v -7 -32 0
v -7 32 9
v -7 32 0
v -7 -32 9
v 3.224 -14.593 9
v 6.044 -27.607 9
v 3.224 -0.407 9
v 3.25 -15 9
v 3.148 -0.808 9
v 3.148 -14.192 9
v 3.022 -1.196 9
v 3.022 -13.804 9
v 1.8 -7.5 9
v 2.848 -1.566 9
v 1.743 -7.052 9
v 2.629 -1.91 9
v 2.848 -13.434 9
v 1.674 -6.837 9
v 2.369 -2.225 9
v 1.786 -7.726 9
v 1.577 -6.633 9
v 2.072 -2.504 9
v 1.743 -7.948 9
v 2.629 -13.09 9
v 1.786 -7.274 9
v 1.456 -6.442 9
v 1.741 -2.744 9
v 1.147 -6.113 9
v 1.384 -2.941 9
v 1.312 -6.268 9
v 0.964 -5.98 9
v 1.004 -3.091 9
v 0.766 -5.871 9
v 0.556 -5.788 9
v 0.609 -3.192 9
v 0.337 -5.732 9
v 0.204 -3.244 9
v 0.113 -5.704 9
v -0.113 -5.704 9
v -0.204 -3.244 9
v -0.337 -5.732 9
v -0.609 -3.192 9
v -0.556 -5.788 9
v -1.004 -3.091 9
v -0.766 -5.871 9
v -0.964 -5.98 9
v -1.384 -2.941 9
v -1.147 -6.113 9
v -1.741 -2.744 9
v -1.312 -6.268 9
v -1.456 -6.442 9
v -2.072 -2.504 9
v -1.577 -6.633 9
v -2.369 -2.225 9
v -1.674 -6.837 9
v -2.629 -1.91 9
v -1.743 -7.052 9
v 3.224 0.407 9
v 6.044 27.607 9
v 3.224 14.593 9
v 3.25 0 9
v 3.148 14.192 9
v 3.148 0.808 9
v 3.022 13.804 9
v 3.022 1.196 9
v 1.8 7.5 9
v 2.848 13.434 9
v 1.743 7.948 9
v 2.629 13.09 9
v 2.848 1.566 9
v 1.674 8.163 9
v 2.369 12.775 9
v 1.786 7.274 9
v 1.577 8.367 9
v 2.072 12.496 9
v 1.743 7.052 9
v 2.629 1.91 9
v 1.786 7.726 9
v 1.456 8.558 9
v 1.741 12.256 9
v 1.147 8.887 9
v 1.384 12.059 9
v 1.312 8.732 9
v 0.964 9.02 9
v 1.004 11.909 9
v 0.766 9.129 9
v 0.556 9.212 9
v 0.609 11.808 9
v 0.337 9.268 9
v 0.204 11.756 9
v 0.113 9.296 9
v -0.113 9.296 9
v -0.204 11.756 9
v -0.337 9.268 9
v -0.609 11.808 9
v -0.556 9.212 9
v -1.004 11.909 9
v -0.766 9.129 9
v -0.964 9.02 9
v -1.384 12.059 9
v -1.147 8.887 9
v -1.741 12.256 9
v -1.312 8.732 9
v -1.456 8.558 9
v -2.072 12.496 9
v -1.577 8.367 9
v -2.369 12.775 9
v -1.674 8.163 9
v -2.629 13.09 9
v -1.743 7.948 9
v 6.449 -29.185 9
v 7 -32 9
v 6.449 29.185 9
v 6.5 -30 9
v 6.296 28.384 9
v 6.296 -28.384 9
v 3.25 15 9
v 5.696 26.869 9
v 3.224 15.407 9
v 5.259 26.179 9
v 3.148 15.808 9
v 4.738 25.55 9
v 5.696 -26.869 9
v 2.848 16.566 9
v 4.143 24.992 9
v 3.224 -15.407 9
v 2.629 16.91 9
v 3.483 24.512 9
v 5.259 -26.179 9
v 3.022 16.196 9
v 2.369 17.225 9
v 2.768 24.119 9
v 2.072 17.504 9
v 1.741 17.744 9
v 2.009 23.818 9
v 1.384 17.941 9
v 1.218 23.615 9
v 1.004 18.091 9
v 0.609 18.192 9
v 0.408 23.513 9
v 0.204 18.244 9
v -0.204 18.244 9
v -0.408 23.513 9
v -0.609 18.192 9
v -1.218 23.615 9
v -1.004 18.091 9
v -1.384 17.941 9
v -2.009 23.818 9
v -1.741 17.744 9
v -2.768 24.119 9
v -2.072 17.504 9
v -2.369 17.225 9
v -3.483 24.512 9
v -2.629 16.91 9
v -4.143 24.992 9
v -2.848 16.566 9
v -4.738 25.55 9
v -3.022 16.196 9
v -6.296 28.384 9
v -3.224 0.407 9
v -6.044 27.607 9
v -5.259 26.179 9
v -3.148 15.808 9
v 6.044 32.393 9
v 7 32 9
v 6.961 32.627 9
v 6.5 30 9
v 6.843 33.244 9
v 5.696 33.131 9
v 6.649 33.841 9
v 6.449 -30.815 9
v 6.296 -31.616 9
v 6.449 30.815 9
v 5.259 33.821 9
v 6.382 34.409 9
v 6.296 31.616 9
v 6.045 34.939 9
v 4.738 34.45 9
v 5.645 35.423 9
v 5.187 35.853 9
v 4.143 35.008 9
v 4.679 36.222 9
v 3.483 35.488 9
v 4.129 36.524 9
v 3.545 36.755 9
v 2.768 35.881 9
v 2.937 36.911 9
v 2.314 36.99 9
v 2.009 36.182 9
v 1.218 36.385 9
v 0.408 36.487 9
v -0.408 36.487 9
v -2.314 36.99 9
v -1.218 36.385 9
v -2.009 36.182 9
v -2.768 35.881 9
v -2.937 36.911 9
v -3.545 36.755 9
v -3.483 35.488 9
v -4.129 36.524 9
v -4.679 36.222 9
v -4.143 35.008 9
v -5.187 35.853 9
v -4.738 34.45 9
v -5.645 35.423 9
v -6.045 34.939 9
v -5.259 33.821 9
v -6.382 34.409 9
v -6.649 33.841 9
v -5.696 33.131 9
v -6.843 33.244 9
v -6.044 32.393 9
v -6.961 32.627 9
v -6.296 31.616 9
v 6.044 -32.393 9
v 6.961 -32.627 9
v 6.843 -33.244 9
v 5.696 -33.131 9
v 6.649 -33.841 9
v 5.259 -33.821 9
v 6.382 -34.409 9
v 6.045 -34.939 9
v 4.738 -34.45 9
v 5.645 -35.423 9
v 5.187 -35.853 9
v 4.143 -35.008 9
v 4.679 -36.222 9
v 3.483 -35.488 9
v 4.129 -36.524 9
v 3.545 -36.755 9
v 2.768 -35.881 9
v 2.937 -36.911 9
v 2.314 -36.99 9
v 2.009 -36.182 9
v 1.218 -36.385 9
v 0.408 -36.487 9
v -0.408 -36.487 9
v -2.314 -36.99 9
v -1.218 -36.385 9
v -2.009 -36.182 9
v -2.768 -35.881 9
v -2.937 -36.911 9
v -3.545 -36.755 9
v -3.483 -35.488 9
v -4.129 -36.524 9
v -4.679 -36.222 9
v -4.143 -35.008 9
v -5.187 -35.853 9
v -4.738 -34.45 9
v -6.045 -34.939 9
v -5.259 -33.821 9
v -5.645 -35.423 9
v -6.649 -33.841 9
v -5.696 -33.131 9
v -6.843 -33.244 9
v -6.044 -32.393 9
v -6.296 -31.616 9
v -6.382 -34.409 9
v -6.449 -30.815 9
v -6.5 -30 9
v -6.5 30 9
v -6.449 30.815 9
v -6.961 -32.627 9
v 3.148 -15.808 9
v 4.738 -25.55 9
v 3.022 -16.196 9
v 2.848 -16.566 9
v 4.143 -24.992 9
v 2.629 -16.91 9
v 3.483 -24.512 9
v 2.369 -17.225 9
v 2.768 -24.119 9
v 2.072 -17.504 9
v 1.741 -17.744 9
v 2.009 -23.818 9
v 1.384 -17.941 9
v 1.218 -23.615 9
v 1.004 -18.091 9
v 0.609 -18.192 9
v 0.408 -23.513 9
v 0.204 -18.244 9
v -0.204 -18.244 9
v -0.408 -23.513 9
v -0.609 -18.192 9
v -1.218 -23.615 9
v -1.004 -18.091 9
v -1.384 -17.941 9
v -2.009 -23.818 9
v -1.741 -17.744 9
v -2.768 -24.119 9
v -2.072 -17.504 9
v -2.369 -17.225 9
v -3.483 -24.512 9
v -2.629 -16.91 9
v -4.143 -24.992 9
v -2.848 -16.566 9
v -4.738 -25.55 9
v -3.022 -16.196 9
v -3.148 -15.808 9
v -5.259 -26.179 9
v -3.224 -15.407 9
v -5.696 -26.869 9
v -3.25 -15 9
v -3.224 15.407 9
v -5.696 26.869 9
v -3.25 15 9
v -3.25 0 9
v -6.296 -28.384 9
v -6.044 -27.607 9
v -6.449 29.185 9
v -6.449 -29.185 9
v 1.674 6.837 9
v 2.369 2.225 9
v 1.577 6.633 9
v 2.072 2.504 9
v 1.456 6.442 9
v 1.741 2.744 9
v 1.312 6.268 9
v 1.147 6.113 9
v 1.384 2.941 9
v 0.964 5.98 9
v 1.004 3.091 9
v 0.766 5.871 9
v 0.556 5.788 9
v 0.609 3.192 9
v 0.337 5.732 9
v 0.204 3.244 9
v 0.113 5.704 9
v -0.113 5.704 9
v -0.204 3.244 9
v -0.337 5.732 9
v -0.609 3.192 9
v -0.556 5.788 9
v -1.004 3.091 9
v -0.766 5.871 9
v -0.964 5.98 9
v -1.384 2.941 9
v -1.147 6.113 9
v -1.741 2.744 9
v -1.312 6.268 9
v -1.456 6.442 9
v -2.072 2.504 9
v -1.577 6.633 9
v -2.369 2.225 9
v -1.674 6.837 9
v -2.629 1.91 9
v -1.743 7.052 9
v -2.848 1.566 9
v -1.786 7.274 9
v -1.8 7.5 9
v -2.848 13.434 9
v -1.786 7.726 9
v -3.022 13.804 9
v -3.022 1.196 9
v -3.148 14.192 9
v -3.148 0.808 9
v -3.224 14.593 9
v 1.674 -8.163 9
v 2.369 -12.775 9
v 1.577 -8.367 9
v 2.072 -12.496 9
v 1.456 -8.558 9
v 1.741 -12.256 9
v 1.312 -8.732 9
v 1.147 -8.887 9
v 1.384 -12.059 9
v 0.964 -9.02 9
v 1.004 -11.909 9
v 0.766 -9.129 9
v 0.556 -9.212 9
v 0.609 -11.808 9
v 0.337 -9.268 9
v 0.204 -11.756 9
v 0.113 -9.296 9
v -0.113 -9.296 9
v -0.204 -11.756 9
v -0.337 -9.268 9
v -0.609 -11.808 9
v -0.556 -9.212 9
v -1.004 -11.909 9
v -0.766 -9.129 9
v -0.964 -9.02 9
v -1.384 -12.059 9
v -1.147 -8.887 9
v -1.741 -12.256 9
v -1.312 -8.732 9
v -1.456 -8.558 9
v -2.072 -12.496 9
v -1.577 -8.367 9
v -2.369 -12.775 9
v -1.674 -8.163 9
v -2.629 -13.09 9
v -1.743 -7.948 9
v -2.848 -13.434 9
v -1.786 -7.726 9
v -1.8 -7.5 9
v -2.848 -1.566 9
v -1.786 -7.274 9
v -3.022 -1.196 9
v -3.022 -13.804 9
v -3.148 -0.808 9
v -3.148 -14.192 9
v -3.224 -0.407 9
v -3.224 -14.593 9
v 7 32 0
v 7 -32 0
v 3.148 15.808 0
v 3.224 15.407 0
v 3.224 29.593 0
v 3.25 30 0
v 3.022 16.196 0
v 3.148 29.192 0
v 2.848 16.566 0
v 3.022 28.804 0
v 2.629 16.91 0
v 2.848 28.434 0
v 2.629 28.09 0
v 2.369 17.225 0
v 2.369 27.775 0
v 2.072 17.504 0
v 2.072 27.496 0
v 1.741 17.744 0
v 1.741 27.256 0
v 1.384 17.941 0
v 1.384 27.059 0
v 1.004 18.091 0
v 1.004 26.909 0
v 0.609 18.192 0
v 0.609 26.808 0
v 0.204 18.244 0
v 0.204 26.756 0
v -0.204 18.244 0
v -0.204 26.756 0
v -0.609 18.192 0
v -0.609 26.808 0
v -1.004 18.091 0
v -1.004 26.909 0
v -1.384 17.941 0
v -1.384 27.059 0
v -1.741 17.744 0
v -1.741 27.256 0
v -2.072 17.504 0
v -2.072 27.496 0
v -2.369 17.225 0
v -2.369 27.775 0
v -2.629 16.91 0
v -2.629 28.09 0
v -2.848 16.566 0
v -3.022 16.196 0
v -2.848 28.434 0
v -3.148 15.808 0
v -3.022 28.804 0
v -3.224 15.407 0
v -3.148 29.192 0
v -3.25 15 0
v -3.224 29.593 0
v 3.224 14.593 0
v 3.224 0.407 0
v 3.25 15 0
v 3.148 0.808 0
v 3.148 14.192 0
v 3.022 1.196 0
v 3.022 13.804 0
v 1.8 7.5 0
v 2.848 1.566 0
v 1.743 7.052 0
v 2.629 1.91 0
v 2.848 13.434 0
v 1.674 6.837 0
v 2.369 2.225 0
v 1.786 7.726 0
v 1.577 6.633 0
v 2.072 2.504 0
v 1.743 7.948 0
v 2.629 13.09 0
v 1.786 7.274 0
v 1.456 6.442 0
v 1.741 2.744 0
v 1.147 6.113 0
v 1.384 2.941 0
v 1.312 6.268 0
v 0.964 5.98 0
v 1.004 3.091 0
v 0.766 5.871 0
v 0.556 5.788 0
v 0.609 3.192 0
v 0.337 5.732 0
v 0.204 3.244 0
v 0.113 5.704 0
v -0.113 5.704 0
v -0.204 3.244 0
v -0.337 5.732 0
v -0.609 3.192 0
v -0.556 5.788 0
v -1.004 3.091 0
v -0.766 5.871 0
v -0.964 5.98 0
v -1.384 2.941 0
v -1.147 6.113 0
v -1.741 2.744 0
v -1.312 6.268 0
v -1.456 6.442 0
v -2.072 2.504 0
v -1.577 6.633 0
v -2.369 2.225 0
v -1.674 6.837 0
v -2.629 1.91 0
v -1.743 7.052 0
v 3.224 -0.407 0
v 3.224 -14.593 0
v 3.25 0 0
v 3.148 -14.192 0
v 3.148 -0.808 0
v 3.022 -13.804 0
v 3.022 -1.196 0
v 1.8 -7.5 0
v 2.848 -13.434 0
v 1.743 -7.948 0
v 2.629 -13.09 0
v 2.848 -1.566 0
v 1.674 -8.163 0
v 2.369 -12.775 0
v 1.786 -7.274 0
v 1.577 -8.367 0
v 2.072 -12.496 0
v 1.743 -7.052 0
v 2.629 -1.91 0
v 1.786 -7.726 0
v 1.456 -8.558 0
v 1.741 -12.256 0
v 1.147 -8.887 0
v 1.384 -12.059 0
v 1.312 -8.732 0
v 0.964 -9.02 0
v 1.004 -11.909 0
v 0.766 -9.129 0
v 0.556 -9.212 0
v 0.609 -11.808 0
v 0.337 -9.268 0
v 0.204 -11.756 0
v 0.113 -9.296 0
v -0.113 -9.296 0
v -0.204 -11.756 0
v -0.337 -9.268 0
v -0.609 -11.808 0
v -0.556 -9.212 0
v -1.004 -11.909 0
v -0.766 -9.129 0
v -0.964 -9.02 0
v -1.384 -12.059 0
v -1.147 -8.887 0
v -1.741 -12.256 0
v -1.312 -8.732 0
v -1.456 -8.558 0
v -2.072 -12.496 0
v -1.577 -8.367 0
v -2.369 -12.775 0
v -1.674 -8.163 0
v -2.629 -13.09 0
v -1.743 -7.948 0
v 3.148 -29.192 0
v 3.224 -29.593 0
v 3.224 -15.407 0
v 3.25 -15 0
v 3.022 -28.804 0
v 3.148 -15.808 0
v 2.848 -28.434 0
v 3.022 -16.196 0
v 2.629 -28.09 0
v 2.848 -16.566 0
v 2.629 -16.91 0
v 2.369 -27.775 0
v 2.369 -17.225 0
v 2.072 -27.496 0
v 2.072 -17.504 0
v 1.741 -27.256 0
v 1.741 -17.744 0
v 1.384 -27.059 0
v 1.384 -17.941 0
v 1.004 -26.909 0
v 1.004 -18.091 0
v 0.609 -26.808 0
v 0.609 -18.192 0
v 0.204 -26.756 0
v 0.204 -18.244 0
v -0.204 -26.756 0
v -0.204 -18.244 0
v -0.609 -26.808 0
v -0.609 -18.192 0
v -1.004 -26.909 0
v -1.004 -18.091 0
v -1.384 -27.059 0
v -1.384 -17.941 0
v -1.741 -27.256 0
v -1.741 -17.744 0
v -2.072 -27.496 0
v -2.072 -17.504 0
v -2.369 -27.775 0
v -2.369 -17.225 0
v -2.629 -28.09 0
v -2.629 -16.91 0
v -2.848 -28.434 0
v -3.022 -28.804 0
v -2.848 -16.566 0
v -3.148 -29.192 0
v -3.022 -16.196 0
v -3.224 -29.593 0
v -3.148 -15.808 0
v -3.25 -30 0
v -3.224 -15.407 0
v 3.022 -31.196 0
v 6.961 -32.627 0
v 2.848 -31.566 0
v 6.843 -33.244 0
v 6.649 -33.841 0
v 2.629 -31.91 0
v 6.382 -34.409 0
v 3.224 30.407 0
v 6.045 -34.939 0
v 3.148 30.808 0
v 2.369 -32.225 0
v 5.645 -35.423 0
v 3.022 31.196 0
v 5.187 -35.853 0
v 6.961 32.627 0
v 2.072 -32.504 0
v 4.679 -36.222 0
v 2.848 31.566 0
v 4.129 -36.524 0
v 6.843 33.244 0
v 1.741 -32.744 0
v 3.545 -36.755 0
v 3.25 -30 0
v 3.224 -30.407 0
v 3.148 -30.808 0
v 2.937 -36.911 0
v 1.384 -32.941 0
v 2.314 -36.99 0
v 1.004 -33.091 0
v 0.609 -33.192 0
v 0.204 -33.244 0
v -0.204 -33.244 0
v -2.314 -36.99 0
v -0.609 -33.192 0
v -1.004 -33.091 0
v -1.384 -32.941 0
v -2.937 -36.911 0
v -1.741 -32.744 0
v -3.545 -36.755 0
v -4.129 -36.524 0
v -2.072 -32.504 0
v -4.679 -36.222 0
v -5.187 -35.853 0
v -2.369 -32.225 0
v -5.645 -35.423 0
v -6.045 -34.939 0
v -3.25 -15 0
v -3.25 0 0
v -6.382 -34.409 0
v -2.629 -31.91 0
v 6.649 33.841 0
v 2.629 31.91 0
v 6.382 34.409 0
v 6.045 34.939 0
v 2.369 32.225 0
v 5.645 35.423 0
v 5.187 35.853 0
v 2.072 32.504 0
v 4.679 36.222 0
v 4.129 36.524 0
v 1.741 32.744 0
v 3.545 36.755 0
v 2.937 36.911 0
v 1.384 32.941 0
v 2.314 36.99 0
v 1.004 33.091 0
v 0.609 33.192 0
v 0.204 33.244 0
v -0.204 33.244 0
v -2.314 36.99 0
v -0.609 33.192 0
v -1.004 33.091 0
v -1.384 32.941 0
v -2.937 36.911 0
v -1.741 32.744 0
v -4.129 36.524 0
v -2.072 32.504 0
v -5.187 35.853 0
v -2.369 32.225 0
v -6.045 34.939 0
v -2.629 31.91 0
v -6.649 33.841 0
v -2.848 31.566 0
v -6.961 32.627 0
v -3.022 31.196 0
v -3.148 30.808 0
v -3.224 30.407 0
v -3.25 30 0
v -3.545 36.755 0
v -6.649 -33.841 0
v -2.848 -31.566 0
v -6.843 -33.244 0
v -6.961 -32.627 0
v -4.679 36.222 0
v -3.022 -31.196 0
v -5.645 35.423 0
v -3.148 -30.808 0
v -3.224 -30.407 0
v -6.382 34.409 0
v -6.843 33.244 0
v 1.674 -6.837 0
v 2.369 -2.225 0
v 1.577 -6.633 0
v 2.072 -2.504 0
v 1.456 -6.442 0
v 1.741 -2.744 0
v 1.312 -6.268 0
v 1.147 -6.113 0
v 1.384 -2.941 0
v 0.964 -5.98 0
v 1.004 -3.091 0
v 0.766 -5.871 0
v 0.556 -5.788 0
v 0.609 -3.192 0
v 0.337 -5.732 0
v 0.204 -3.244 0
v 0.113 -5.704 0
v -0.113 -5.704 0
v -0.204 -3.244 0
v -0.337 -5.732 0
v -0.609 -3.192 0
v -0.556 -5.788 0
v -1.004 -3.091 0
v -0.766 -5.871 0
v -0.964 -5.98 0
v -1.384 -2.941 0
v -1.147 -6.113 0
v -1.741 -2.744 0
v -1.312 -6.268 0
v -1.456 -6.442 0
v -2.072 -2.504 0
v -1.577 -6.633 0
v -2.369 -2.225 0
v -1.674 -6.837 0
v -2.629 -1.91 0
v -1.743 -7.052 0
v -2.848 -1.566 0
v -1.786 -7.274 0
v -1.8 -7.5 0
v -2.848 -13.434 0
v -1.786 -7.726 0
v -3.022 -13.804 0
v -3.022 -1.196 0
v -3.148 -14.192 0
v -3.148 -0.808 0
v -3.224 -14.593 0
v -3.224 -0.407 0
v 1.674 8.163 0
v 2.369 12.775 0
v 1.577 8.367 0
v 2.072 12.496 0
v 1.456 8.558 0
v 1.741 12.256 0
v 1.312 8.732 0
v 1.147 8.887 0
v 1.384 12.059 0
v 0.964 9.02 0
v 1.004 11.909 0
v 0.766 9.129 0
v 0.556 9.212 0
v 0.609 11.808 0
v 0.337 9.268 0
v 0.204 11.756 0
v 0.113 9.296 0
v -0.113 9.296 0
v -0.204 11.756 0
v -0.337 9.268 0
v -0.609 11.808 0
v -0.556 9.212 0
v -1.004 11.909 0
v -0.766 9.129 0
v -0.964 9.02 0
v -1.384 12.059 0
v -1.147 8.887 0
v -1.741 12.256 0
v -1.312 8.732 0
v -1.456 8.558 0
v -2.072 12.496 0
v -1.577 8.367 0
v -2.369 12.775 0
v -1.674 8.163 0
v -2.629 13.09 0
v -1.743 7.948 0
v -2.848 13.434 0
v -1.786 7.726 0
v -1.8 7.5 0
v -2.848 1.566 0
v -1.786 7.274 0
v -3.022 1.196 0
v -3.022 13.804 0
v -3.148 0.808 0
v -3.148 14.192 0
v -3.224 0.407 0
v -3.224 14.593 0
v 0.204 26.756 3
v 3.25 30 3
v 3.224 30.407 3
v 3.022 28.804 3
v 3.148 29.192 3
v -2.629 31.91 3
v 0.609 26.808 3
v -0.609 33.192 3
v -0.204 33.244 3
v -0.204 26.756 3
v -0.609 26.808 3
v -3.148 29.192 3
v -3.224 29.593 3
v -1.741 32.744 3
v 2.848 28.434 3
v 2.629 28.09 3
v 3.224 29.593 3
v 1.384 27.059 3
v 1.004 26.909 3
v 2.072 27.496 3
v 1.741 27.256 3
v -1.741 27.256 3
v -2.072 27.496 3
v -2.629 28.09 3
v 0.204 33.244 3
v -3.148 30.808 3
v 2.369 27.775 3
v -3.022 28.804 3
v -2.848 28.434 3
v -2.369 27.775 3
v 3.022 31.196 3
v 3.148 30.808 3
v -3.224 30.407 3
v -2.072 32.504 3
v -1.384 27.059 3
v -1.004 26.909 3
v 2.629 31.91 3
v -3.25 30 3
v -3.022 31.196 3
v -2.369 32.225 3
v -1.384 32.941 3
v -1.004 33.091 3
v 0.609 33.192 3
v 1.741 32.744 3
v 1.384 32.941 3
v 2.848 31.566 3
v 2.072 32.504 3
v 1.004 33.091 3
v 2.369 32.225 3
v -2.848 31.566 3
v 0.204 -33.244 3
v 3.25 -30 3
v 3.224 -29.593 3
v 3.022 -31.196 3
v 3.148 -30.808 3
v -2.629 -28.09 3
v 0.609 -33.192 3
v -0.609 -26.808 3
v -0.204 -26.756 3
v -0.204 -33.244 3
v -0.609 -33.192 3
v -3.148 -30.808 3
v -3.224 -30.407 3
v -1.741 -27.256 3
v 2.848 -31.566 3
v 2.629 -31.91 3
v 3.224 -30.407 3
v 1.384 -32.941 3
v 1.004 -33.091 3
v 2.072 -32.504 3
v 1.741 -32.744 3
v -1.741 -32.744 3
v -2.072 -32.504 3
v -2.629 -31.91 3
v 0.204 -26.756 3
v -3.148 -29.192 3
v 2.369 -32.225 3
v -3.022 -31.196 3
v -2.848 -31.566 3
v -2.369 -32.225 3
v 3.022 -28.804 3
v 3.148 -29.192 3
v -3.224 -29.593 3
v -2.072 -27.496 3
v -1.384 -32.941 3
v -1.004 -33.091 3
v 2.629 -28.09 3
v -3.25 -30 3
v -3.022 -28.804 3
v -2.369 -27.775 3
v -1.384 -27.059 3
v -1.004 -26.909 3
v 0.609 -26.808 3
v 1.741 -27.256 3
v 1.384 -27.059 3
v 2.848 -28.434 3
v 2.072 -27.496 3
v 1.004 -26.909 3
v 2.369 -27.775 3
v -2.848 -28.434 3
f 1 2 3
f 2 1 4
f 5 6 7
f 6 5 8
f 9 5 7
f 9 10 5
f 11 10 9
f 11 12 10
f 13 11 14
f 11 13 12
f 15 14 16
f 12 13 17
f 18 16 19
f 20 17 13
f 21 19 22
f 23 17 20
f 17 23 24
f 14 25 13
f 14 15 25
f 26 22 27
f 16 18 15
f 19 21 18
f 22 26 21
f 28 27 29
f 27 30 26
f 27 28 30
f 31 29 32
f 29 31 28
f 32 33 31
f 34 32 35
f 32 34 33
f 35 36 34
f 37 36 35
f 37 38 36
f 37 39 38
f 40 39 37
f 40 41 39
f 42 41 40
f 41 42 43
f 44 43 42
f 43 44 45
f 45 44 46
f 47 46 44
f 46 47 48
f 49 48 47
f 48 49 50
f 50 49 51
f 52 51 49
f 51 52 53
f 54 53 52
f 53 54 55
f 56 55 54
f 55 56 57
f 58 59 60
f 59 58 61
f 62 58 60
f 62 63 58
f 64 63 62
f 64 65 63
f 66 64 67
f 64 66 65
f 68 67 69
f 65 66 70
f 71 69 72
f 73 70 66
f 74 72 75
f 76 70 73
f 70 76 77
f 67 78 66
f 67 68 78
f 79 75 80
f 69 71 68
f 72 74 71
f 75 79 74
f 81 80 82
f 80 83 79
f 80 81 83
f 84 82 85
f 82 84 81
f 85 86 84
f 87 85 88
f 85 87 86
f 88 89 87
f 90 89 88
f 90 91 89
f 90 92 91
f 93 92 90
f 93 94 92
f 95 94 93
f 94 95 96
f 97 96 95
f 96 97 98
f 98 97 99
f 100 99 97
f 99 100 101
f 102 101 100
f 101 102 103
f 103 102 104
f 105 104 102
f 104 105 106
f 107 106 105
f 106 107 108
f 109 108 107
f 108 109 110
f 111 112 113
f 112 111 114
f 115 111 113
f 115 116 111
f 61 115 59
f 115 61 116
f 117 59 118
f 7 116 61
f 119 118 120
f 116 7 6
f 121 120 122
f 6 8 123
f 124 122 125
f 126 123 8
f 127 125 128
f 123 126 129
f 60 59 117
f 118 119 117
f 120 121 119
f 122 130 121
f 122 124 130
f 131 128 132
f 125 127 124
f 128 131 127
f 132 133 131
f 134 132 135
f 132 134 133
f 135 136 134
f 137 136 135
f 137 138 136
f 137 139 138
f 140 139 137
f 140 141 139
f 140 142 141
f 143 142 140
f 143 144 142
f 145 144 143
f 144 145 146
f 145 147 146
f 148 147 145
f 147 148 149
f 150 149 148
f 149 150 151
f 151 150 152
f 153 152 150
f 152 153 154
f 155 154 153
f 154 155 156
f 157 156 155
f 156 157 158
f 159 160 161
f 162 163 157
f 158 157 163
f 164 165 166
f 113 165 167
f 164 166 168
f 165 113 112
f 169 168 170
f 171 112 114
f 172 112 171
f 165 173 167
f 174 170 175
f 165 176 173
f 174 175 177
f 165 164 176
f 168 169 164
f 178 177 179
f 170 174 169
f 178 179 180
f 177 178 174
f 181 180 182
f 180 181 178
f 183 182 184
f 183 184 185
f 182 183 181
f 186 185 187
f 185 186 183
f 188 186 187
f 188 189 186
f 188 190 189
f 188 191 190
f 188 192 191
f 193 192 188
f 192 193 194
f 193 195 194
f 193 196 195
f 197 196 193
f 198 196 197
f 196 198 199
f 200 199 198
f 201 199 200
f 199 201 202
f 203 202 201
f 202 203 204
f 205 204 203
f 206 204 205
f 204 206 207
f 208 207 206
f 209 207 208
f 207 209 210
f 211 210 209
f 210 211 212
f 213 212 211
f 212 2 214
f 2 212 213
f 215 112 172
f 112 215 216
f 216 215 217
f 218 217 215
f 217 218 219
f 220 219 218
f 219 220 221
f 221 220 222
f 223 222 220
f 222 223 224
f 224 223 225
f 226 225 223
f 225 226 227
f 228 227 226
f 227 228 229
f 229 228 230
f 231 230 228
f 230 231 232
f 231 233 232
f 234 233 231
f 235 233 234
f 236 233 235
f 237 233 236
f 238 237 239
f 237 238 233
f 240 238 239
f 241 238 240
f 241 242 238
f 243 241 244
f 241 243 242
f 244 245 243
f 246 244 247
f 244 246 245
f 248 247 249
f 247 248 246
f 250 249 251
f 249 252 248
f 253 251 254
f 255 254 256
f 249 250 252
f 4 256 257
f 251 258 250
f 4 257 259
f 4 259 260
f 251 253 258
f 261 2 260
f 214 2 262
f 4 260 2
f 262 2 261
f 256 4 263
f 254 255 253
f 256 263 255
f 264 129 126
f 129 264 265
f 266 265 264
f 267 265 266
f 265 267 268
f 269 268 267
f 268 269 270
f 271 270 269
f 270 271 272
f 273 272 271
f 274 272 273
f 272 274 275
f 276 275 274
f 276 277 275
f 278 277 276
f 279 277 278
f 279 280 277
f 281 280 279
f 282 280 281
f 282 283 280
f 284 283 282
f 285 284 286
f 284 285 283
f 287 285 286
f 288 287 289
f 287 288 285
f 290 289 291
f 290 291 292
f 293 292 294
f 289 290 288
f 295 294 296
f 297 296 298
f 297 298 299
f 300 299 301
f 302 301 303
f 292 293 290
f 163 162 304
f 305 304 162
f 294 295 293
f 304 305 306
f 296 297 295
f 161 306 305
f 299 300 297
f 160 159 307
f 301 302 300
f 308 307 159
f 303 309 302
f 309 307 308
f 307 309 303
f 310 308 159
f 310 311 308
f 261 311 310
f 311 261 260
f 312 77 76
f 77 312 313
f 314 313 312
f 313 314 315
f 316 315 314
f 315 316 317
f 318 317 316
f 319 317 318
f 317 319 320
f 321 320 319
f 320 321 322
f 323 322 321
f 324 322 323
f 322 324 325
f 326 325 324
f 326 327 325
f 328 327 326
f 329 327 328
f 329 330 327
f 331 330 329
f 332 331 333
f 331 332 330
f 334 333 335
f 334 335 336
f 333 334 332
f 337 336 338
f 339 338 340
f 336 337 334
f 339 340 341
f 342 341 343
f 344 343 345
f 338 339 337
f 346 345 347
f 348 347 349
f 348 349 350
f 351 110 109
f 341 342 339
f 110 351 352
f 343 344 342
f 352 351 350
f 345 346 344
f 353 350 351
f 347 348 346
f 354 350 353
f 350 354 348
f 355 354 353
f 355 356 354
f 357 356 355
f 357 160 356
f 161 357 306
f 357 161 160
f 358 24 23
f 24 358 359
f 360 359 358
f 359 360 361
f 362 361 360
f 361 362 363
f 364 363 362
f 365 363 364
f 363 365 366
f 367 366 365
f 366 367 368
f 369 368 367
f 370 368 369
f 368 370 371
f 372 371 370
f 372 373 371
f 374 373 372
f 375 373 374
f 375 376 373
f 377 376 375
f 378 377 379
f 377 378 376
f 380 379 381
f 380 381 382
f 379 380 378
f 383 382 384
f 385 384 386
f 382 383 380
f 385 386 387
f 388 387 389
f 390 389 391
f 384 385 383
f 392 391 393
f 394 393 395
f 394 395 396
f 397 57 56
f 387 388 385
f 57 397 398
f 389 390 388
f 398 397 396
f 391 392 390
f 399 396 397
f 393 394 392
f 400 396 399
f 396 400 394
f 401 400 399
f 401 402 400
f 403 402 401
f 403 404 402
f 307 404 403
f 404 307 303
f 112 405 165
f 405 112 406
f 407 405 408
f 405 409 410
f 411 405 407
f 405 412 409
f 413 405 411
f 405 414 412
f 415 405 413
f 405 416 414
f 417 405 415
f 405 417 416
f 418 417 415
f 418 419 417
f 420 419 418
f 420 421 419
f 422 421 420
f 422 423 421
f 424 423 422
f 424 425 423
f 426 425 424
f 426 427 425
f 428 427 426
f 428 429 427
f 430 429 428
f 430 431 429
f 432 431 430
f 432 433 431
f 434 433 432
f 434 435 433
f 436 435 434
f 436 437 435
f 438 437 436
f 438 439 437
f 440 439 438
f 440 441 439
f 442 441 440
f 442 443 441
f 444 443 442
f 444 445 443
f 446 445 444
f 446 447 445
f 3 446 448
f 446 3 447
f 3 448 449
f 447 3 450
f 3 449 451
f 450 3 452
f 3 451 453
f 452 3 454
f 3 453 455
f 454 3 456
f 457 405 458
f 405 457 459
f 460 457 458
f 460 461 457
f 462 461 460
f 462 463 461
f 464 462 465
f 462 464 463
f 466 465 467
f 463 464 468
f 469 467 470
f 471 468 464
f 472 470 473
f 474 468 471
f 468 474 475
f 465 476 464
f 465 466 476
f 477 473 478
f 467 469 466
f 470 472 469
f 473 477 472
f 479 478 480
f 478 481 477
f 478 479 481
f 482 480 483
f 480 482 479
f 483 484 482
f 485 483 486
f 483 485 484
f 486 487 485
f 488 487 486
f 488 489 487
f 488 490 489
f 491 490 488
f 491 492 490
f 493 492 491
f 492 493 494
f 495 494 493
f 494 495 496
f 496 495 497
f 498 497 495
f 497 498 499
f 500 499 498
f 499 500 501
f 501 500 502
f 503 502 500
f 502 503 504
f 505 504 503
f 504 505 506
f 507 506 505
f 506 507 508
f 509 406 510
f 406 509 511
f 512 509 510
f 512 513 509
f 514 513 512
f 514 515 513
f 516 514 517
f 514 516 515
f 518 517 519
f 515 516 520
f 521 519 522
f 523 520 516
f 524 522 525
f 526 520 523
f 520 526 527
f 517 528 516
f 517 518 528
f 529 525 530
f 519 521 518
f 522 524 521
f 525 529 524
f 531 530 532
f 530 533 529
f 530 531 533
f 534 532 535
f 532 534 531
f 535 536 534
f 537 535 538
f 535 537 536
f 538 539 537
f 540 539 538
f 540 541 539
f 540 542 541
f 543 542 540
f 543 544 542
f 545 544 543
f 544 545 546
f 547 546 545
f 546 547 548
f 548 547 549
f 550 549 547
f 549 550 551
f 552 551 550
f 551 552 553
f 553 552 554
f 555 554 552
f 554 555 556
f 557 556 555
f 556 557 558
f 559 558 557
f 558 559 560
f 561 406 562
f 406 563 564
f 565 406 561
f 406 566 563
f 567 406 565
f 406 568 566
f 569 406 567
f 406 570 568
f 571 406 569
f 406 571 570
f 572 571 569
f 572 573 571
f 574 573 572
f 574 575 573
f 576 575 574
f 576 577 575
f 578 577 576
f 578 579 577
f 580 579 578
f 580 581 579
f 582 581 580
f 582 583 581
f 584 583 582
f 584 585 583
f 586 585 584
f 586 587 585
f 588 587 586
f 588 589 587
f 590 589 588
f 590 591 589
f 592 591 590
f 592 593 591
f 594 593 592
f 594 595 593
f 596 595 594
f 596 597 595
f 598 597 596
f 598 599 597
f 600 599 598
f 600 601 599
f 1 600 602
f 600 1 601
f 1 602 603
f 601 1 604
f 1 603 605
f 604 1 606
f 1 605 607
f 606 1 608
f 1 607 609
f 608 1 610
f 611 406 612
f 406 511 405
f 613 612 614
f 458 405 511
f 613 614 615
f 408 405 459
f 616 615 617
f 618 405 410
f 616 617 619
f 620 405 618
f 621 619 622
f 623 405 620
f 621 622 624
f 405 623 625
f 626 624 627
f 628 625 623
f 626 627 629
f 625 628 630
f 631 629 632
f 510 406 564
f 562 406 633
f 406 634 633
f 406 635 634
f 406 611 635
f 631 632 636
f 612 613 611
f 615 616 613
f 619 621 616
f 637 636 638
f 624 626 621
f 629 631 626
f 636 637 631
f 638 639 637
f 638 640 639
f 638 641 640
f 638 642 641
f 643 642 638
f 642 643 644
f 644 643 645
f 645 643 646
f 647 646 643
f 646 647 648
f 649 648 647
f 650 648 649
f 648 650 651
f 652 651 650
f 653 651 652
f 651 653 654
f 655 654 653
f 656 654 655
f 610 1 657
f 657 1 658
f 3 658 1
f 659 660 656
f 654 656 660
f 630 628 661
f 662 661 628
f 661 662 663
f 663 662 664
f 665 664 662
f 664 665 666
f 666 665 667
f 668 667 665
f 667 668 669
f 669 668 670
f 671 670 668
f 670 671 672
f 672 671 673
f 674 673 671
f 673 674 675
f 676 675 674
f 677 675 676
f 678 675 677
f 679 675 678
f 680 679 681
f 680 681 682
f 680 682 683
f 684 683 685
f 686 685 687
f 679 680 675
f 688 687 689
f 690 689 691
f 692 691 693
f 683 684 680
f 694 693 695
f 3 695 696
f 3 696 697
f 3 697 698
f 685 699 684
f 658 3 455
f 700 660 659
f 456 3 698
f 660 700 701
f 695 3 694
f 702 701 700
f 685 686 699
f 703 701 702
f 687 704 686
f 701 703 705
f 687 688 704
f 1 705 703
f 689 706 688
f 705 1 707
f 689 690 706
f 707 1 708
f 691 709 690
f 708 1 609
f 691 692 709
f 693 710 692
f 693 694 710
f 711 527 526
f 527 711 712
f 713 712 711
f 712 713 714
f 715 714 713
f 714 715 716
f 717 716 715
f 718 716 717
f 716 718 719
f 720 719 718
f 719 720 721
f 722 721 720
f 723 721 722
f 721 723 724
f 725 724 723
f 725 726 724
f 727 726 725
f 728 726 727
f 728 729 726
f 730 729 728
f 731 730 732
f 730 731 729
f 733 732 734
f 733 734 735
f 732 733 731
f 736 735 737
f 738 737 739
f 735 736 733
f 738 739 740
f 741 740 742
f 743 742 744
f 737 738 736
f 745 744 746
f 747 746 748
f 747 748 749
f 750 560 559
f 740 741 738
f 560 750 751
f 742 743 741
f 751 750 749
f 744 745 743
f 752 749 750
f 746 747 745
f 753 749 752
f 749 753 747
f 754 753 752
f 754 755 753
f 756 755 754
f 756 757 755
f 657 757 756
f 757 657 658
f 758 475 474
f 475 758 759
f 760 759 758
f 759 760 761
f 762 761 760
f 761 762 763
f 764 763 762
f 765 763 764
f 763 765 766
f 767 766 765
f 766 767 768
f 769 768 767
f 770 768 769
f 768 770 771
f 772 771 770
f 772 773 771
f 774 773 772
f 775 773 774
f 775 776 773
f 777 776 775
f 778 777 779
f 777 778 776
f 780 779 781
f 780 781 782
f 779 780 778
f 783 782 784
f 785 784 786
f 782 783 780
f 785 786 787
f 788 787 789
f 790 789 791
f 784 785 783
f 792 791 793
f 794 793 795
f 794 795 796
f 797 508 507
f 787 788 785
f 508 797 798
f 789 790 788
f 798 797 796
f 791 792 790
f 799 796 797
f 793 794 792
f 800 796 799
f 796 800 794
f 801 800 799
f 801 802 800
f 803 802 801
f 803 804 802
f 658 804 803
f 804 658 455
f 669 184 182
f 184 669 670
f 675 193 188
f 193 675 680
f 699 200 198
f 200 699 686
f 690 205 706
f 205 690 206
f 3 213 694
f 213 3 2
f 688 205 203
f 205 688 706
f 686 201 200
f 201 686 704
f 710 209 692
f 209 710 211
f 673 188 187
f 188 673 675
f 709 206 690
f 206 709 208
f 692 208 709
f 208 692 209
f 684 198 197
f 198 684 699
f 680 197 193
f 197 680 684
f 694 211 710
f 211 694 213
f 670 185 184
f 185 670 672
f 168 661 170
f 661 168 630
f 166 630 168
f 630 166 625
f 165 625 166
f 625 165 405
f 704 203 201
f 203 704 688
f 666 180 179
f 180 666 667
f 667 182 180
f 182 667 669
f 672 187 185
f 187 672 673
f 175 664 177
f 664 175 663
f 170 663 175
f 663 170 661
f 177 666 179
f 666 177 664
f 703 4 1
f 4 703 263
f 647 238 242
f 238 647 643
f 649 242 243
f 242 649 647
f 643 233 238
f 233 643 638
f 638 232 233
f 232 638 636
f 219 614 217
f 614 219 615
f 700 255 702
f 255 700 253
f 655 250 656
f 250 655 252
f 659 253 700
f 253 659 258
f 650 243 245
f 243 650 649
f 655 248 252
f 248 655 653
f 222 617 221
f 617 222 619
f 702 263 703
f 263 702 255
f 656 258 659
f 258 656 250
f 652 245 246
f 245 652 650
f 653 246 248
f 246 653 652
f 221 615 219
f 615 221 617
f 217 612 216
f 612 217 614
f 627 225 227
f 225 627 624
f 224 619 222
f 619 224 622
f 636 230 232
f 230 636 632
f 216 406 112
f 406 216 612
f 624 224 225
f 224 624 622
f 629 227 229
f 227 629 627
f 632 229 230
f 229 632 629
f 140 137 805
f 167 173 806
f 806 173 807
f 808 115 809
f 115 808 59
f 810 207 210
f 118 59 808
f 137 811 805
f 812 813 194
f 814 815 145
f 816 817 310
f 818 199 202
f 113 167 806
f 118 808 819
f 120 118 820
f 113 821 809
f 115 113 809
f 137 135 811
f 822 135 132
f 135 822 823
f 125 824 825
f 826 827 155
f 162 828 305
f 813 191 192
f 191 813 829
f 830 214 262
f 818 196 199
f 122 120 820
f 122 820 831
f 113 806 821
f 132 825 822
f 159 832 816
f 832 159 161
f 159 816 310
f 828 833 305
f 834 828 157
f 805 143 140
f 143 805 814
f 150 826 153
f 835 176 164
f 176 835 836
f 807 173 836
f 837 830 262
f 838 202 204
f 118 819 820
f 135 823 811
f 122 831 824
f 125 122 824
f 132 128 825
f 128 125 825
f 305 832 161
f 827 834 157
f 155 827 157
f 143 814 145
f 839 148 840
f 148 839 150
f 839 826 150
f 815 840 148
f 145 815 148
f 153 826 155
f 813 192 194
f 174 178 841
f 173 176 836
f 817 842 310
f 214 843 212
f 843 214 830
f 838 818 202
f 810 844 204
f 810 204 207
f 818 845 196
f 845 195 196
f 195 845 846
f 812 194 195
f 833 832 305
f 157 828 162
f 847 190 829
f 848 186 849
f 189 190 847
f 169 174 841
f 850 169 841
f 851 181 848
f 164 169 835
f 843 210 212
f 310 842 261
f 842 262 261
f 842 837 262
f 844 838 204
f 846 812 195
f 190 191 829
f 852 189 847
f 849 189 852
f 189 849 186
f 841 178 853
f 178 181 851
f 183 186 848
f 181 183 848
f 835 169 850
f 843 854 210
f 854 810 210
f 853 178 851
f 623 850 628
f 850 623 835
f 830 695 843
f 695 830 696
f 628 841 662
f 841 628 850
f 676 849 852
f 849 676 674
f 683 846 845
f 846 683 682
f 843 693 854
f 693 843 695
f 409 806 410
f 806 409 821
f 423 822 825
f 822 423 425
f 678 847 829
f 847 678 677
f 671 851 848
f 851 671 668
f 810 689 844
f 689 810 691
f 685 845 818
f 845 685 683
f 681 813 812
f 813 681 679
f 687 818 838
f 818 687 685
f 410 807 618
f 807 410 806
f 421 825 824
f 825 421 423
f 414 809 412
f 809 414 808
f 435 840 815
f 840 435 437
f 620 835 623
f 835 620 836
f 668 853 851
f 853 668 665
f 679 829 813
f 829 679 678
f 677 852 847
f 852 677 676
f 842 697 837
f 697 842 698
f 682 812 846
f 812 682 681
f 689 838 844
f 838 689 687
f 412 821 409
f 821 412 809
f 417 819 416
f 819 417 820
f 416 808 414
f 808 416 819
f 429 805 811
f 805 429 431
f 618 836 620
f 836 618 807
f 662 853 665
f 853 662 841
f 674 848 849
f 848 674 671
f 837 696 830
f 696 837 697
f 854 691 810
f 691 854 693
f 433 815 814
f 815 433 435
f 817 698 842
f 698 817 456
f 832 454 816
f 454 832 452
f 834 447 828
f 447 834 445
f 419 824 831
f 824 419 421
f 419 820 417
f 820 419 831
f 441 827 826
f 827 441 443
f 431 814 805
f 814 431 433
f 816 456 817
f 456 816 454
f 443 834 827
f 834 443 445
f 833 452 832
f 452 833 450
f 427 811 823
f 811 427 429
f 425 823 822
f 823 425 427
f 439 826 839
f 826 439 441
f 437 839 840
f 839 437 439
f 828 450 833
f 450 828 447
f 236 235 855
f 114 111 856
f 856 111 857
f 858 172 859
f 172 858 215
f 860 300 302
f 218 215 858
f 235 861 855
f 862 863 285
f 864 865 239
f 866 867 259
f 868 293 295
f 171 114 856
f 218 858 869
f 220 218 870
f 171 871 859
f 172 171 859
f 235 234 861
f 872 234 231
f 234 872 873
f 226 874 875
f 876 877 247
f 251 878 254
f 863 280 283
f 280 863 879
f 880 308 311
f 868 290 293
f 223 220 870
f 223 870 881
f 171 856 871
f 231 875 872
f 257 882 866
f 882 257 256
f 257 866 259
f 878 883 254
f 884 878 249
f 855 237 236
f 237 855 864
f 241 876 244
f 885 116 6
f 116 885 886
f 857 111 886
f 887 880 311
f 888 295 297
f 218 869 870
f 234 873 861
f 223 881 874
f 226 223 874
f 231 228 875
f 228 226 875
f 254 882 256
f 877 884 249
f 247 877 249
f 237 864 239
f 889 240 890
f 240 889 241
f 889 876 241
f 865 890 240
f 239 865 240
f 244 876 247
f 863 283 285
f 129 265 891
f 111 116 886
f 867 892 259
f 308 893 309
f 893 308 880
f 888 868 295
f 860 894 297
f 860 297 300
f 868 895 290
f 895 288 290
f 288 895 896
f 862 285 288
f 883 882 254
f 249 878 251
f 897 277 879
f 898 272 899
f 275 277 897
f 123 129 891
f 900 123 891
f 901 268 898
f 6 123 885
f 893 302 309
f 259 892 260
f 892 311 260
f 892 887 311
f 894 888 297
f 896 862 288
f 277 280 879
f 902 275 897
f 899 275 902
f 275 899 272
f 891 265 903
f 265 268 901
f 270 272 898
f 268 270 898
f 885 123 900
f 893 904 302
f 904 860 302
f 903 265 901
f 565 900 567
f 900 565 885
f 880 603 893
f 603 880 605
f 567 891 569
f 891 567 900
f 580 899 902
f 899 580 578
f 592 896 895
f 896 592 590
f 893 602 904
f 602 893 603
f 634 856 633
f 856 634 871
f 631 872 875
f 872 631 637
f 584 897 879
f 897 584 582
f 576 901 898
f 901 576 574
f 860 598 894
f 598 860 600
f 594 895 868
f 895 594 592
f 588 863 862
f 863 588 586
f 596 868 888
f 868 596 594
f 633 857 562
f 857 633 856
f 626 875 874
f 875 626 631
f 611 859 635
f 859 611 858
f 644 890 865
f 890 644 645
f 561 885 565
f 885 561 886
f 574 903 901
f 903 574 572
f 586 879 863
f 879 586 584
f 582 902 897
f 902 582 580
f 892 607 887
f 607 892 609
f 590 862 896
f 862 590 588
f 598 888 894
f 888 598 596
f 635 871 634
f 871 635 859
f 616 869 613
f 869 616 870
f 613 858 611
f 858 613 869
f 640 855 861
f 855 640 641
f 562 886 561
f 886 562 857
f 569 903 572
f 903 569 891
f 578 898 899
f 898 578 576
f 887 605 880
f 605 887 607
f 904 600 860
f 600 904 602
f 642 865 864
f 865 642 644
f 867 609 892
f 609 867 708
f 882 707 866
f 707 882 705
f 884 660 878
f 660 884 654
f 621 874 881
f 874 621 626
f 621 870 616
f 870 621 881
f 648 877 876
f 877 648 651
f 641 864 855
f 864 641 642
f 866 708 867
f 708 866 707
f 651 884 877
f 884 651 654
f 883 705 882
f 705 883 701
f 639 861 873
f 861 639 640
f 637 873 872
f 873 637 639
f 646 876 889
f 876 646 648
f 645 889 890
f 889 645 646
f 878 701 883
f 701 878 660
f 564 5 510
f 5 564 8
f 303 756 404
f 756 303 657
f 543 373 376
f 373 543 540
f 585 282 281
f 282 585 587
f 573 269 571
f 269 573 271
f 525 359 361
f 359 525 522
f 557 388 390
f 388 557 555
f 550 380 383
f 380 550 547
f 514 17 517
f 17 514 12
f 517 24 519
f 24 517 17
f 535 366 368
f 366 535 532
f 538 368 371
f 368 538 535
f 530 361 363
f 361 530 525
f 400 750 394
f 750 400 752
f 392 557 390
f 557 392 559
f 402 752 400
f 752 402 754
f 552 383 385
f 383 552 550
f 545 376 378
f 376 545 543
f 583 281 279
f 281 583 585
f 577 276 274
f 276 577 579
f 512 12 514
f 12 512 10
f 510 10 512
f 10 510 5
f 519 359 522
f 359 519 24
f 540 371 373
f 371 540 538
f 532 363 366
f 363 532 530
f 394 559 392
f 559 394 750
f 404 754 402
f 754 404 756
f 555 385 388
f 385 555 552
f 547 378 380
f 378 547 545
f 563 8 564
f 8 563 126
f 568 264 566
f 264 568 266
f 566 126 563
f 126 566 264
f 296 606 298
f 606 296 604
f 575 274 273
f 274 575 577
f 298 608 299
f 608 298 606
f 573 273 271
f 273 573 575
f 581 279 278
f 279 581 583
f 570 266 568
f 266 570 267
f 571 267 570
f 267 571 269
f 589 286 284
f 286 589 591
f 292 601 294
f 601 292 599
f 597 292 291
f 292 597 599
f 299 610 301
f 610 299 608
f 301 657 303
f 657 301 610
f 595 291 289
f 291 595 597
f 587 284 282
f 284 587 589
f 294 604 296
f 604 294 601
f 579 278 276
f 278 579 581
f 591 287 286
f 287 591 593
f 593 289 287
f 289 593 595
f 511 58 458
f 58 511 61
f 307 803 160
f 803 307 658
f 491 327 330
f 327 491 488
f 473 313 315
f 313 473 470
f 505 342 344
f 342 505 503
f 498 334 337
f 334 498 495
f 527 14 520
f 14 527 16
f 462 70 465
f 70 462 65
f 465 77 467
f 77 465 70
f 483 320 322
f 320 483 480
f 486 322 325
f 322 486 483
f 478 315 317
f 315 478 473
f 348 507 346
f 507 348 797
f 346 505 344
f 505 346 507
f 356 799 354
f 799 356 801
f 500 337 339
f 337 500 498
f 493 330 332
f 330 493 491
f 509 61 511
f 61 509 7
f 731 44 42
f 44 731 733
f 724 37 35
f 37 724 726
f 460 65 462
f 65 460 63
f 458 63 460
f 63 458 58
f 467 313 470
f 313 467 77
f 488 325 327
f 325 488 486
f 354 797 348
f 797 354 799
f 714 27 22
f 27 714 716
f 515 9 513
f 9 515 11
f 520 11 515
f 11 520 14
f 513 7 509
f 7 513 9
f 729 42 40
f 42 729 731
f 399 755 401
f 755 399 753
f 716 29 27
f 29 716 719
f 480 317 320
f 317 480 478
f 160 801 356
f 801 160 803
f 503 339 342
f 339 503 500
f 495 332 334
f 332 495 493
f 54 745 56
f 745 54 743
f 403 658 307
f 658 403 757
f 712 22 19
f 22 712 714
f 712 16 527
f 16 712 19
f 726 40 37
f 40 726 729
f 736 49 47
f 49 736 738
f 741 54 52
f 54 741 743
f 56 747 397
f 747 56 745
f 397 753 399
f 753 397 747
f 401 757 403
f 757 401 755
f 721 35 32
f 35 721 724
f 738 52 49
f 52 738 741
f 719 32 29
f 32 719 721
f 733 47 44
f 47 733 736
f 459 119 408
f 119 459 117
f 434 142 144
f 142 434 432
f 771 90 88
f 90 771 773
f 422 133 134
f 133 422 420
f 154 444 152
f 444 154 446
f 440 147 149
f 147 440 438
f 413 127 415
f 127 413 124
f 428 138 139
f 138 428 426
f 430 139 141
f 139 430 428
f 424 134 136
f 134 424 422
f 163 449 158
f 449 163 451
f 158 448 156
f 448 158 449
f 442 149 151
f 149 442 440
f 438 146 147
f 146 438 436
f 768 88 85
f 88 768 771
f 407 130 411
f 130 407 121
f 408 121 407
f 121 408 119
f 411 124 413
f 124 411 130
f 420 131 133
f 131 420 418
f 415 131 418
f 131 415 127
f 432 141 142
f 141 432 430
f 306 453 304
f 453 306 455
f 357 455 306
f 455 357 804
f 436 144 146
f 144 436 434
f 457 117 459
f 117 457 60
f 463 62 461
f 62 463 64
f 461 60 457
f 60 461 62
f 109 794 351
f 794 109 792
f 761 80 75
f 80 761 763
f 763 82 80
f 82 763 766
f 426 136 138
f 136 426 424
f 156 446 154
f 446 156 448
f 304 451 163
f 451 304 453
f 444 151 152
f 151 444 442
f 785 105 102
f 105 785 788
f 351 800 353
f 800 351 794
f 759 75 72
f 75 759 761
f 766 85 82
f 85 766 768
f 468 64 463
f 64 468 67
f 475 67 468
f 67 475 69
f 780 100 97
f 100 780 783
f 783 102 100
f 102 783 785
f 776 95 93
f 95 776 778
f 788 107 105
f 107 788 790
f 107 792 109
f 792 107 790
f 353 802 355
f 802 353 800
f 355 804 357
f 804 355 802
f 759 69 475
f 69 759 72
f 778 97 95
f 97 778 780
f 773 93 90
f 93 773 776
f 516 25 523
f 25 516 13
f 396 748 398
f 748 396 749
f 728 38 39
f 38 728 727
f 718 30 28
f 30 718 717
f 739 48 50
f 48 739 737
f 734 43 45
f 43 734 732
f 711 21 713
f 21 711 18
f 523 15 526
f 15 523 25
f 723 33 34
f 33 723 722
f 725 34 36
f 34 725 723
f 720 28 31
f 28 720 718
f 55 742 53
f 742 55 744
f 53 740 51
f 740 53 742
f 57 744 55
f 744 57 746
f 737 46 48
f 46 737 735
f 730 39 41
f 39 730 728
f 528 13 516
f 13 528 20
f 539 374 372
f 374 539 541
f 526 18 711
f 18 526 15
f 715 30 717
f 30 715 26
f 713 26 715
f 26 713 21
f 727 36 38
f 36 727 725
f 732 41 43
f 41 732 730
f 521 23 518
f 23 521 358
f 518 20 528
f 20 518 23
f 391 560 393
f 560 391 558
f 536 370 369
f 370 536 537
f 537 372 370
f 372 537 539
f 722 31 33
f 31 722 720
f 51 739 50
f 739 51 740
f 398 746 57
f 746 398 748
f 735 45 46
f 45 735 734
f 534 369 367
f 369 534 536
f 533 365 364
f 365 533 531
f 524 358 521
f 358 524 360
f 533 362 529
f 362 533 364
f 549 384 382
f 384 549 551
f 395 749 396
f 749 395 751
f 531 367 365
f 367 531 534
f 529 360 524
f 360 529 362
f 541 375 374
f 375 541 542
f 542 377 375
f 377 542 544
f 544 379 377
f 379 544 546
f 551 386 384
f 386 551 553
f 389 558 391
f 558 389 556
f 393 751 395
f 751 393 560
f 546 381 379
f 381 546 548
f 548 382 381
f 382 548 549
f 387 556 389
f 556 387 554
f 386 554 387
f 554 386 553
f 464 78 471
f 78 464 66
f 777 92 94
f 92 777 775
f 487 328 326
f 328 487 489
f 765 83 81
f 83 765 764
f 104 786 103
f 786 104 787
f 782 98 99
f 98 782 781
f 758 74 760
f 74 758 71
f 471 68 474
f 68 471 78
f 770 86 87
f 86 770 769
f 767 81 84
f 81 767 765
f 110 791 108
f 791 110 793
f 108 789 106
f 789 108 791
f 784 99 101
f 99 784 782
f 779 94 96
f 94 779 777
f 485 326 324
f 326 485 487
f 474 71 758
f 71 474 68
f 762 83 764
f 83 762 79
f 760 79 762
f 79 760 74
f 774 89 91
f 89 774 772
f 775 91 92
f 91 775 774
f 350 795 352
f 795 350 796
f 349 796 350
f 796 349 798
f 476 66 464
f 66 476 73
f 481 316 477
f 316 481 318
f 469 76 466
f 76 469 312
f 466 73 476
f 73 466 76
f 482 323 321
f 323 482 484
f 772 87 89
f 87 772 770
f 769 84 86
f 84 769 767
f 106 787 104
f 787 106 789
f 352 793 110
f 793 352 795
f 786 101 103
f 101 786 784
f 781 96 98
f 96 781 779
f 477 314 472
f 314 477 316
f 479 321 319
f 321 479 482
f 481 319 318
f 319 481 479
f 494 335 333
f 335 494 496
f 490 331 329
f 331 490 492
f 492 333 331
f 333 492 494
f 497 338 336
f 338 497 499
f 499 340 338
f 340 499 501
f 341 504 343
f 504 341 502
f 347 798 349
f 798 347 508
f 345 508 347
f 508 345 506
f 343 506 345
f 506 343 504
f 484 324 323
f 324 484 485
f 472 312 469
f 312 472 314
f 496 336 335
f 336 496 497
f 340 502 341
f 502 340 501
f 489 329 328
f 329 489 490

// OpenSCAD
$fn = 50;


difference() {
	union() {
		hull() {
			translate(v = [-2.0000000000, 17.0000000000, 0]) {
				cylinder(h = 9, r = 5);
			}
			translate(v = [2.0000000000, 17.0000000000, 0]) {
				cylinder(h = 9, r = 5);
			}
			translate(v = [-2.0000000000, -17.0000000000, 0]) {
				cylinder(h = 9, r = 5);
			}
			translate(v = [2.0000000000, -17.0000000000, 0]) {
				cylinder(h = 9, r = 5);
			}
		}
		translate(v = [0.0000000000, 22.5000000000, 0]) {
			hull() {
				translate(v = [-2.0000000000, 9.5000000000, 0]) {
					cylinder(h = 9, r = 5);
				}
				translate(v = [2.0000000000, 9.5000000000, 0]) {
					cylinder(h = 9, r = 5);
				}
				translate(v = [-2.0000000000, -9.5000000000, 0]) {
					cylinder(h = 9, r = 5);
				}
				translate(v = [2.0000000000, -9.5000000000, 0]) {
					cylinder(h = 9, r = 5);
				}
			}
		}
		translate(v = [0.0000000000, 22.5000000000, 0]) {
			hull() {
				translate(v = [-2.0000000000, 9.5000000000, 0]) {
					cylinder(h = 9, r = 5);
				}
				translate(v = [2.0000000000, 9.5000000000, 0]) {
					cylinder(h = 9, r = 5);
				}
				translate(v = [-2.0000000000, -9.5000000000, 0]) {
					cylinder(h = 9, r = 5);
				}
				translate(v = [2.0000000000, -9.5000000000, 0]) {
					cylinder(h = 9, r = 5);
				}
			}
		}
		translate(v = [0.0000000000, -22.5000000000, 0]) {
			hull() {
				translate(v = [-2.0000000000, 9.5000000000, 0]) {
					cylinder(h = 9, r = 5);
				}
				translate(v = [2.0000000000, 9.5000000000, 0]) {
					cylinder(h = 9, r = 5);
				}
				translate(v = [-2.0000000000, -9.5000000000, 0]) {
					cylinder(h = 9, r = 5);
				}
				translate(v = [2.0000000000, -9.5000000000, 0]) {
					cylinder(h = 9, r = 5);
				}
			}
		}
		translate(v = [0.0000000000, -22.5000000000, 0]) {
			hull() {
				translate(v = [-2.0000000000, 9.5000000000, 0]) {
					cylinder(h = 9, r = 5);
				}
				translate(v = [2.0000000000, 9.5000000000, 0]) {
					cylinder(h = 9, r = 5);
				}
				translate(v = [-2.0000000000, -9.5000000000, 0]) {
					cylinder(h = 9, r = 5);
				}
				translate(v = [2.0000000000, -9.5000000000, 0]) {
					cylinder(h = 9, r = 5);
				}
			}
		}
	}
	union() {
		translate(v = [0.0000000000, 30.0000000000, 9]) {
			rotate(a = [0, 0, 0]) {
				difference() {
					union() {
						#translate(v = [0, 0, -9.0000000000]) {
							cylinder(h = 9, r = 2.2500000000);
						}
						#translate(v = [0, 0, -6]) {
							cylinder(h = 6, r1 = 3.2500000000, r2 = 6.5000000000);
						}
						#translate(v = [0, 0, -9.0000000000]) {
							cylinder(h = 9, r = 3.2500000000);
						}
						#translate(v = [0, 0, -9.0000000000]) {
							cylinder(h = 9, r = 2.2500000000);
						}
					}
					union();
				}
			}
		}
		translate(v = [0.0000000000, 30.0000000000, 9]) {
			rotate(a = [0, 0, 0]) {
				difference() {
					union() {
						#translate(v = [0, 0, -9.0000000000]) {
							cylinder(h = 9, r = 2.2500000000);
						}
						#translate(v = [0, 0, -6]) {
							cylinder(h = 6, r1 = 3.2500000000, r2 = 6.5000000000);
						}
						#translate(v = [0, 0, -9.0000000000]) {
							cylinder(h = 9, r = 3.2500000000);
						}
						#translate(v = [0, 0, -9.0000000000]) {
							cylinder(h = 9, r = 2.2500000000);
						}
					}
					union();
				}
			}
		}
		translate(v = [0.0000000000, -30.0000000000, 9]) {
			rotate(a = [0, 0, 0]) {
				difference() {
					union() {
						#translate(v = [0, 0, -9.0000000000]) {
							cylinder(h = 9, r = 2.2500000000);
						}
						#translate(v = [0, 0, -6]) {
							cylinder(h = 6, r1 = 3.2500000000, r2 = 6.5000000000);
						}
						#translate(v = [0, 0, -9.0000000000]) {
							cylinder(h = 9, r = 3.2500000000);
						}
						#translate(v = [0, 0, -9.0000000000]) {
							cylinder(h = 9, r = 2.2500000000);
						}
					}
					union();
				}
			}
		}
		translate(v = [0.0000000000, -30.0000000000, 9]) {
			rotate(a = [0, 0, 0]) {
				difference() {
					union() {
						#translate(v = [0, 0, -9.0000000000]) {
							cylinder(h = 9, r = 2.2500000000);
						}
						#translate(v = [0, 0, -6]) {
							cylinder(h = 6, r1 = 3.2500000000, r2 = 6.5000000000);
						}
						#translate(v = [0, 0, -9.0000000000]) {
							cylinder(h = 9, r = 3.2500000000);
						}
						#translate(v = [0, 0, -9.0000000000]) {
							cylinder(h = 9, r = 2.2500000000);
						}
					}
					union();
				}
			}
		}
		translate(v = [0.0000000000, -15.0000000000, 0]) {
			translate(v = [0, 0, -100]) {
				cylinder(h = 200, r = 3.2500000000);
			}
		}
		translate(v = [0, 0, -100]) {
			cylinder(h = 200, r = 3.2500000000);
		}
		translate(v = [0.0000000000, 15.0000000000, 0]) {
			translate(v = [0, 0, -100]) {
				cylinder(h = 200, r = 3.2500000000);
			}
		}
		translate(v = [0.0000000000, -15.0000000000, 0]) {
			translate(v = [0, 0, -100]) {
				cylinder(h = 200, r = 1.8000000000);
			}
		}
		translate(v = [0.0000000000, -7.5000000000, 0]) {
			translate(v = [0, 0, -100]) {
				cylinder(h = 200, r = 1.8000000000);
			}
		}
		translate(v = [0, 0, -100]) {
			cylinder(h = 200, r = 1.8000000000);
		}
		translate(v = [0.0000000000, 7.5000000000, 0]) {
			translate(v = [0, 0, -100]) {
				cylinder(h = 200, r = 1.8000000000);
			}
		}
		translate(v = [0.0000000000, 15.0000000000, 0]) {
			translate(v = [0, 0, -100]) {
				cylinder(h = 200, r = 1.8000000000);
			}
		}
	}
}
